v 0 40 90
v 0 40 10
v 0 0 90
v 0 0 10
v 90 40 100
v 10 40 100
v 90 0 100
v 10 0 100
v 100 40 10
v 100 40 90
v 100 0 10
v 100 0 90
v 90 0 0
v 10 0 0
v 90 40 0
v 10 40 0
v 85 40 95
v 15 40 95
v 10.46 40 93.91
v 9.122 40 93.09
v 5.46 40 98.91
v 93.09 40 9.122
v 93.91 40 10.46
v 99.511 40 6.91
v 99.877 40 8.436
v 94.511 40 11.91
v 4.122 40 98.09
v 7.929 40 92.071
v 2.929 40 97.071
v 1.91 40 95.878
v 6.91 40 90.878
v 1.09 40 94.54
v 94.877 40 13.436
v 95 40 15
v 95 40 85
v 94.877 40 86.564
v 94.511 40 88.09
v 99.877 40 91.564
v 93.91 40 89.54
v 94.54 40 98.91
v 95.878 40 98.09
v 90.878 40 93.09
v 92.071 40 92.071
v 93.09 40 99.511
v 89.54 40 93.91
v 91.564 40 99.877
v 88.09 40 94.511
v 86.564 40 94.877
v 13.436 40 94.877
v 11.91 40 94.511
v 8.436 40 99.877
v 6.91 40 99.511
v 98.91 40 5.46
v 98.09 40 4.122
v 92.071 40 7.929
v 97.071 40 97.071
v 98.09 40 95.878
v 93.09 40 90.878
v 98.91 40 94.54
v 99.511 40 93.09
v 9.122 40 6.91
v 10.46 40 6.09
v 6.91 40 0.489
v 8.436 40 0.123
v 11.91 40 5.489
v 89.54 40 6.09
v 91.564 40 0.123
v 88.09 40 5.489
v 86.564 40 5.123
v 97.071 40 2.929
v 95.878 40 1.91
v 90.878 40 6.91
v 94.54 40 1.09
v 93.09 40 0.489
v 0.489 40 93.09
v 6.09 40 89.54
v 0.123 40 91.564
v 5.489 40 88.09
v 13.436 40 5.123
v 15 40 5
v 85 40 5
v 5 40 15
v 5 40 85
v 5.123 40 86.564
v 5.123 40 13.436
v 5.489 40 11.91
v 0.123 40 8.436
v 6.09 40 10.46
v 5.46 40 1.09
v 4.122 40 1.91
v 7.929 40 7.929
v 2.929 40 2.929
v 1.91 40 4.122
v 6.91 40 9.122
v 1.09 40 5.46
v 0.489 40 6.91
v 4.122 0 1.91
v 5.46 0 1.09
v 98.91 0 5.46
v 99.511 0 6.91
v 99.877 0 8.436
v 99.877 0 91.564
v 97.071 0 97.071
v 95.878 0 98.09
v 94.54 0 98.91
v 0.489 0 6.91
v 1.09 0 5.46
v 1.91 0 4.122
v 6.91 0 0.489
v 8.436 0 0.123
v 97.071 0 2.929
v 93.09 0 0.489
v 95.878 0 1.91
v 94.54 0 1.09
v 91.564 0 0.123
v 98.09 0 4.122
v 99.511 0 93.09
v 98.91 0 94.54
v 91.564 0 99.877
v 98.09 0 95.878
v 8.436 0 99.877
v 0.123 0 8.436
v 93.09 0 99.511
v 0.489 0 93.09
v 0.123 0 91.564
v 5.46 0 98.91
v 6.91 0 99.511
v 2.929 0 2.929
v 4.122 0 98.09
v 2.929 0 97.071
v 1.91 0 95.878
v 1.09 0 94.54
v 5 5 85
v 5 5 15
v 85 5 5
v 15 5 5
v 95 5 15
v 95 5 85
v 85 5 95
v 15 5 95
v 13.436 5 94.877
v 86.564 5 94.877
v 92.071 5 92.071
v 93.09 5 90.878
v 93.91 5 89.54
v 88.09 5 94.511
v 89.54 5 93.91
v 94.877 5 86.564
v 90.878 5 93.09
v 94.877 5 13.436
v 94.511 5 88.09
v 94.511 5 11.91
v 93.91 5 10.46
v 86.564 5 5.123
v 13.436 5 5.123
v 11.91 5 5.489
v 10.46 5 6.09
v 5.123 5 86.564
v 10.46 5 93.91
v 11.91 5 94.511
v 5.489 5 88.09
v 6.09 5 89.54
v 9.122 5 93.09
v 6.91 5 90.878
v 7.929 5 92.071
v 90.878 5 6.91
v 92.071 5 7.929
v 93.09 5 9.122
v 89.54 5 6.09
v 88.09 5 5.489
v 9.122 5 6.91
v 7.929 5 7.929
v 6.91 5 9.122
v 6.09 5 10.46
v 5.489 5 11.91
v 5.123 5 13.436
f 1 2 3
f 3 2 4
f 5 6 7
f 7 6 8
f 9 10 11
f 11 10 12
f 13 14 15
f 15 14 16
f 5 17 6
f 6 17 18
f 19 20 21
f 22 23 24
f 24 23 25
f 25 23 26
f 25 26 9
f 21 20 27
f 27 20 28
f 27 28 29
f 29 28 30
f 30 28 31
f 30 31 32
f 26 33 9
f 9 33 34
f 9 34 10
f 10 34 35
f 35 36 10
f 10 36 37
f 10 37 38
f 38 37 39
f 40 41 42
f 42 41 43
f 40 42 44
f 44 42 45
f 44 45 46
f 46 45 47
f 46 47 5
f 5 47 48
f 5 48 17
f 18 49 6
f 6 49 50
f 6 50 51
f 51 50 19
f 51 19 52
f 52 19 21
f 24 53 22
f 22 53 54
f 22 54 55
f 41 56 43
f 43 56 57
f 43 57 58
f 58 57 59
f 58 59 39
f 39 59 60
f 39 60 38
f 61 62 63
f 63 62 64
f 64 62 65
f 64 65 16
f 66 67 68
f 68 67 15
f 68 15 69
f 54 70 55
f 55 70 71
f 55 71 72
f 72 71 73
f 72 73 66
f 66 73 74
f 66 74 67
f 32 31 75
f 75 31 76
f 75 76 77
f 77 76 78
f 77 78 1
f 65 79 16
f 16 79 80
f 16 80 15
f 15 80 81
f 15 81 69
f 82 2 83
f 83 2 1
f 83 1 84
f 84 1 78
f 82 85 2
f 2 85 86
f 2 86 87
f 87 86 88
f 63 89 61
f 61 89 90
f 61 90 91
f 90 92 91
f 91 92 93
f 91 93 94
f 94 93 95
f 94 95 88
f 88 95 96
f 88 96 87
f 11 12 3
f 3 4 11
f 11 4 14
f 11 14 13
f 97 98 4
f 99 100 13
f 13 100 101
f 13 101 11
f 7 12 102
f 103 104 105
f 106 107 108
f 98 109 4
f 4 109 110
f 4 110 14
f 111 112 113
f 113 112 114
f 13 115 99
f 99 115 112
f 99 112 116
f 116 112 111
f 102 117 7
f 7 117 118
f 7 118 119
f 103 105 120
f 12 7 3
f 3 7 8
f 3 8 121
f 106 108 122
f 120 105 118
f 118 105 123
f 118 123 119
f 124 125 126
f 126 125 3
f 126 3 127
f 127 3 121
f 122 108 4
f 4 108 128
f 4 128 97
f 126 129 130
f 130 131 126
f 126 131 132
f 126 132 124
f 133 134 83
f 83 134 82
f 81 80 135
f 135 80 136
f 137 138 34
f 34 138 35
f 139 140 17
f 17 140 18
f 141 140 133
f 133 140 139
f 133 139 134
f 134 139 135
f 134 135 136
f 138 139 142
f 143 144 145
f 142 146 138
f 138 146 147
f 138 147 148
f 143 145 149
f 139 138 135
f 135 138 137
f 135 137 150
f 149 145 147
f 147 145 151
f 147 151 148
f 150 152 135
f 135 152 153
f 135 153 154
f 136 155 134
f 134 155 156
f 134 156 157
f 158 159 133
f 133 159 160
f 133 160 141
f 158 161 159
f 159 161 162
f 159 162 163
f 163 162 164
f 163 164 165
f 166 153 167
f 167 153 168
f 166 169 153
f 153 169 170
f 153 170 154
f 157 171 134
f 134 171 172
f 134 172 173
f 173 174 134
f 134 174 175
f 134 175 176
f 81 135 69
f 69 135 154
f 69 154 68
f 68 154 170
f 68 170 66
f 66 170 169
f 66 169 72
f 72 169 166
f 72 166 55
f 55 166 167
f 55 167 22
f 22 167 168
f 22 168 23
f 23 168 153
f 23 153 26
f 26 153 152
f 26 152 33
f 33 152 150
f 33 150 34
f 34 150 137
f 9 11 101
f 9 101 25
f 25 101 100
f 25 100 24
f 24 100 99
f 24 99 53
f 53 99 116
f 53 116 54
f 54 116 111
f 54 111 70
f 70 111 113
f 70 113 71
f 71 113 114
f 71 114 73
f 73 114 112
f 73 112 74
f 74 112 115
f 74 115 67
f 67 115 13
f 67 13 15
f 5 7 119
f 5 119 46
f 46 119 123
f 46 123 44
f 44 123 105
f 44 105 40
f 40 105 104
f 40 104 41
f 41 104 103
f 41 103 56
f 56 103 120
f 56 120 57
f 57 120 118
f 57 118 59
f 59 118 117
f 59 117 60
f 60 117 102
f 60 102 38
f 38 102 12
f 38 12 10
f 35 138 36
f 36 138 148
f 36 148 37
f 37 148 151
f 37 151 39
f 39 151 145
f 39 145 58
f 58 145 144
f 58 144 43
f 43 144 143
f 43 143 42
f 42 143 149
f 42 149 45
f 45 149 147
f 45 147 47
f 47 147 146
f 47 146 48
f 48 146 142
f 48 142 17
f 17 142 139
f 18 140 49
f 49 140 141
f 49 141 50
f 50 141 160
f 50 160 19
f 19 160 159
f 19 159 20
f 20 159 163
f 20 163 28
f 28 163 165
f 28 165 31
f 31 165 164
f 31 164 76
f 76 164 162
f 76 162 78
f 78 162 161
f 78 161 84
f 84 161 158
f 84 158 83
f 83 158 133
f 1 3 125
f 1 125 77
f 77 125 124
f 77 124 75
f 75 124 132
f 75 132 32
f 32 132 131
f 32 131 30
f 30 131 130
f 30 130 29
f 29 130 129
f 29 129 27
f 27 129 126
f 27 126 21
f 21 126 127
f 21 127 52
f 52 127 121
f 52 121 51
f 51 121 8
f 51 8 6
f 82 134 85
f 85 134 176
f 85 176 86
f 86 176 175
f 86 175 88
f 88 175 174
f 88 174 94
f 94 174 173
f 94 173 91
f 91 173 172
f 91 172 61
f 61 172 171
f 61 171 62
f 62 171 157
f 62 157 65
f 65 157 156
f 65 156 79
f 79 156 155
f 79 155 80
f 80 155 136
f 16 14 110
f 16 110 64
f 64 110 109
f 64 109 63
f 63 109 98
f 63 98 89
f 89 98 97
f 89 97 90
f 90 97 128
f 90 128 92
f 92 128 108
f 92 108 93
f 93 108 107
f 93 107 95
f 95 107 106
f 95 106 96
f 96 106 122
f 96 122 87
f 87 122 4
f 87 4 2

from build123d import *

# Parameters (mm, degrees)
SKETCH1_W           = 100
SKETCH1_H           = 100
BOSS_EXTRUDE1_DEPTH = 40
SKETCH2_W           = 90
SKETCH2_H           = 90
CUT_EXTRUDE1_DEPTH  = 35
FILLET1_R           = 10


with BuildPart() as part:
    # Sketch1 → Boss-Extrude1 (new body)
    with BuildSketch(Plane(origin=(0, 0, 0), x_dir=(1, 0, 0), z_dir=(0, 1, 0))):
        with Locations((50, -50)):
            Rectangle(SKETCH1_W, SKETCH1_H)
    extrude(amount=BOSS_EXTRUDE1_DEPTH)

    # Sketch2 → Cut-Extrude1 (cut)
    with BuildSketch(Plane(origin=(0, 40, 0), x_dir=(1, 0, 0), z_dir=(0, 1, 0))):
        with Locations((50, -50)):
            Rectangle(SKETCH2_W, SKETCH2_H)
    extrude(amount=-CUT_EXTRUDE1_DEPTH, mode=Mode.SUBTRACT)

    # Fillet1
    fillet1_edges = [part.edges().sort_by_distance(p)[0] for p in [
        (5, 22.5, 95),
        (5, 22.5, 5),
        (95, 22.5, 5),
        (95, 22.5, 95),
        (0, 20, 0),
        (100, 20, 0),
        (100, 20, 100),
        (0, 20, 100),
    ]]
    fillet(fillet1_edges, radius=FILLET1_R)


solid = part.part
